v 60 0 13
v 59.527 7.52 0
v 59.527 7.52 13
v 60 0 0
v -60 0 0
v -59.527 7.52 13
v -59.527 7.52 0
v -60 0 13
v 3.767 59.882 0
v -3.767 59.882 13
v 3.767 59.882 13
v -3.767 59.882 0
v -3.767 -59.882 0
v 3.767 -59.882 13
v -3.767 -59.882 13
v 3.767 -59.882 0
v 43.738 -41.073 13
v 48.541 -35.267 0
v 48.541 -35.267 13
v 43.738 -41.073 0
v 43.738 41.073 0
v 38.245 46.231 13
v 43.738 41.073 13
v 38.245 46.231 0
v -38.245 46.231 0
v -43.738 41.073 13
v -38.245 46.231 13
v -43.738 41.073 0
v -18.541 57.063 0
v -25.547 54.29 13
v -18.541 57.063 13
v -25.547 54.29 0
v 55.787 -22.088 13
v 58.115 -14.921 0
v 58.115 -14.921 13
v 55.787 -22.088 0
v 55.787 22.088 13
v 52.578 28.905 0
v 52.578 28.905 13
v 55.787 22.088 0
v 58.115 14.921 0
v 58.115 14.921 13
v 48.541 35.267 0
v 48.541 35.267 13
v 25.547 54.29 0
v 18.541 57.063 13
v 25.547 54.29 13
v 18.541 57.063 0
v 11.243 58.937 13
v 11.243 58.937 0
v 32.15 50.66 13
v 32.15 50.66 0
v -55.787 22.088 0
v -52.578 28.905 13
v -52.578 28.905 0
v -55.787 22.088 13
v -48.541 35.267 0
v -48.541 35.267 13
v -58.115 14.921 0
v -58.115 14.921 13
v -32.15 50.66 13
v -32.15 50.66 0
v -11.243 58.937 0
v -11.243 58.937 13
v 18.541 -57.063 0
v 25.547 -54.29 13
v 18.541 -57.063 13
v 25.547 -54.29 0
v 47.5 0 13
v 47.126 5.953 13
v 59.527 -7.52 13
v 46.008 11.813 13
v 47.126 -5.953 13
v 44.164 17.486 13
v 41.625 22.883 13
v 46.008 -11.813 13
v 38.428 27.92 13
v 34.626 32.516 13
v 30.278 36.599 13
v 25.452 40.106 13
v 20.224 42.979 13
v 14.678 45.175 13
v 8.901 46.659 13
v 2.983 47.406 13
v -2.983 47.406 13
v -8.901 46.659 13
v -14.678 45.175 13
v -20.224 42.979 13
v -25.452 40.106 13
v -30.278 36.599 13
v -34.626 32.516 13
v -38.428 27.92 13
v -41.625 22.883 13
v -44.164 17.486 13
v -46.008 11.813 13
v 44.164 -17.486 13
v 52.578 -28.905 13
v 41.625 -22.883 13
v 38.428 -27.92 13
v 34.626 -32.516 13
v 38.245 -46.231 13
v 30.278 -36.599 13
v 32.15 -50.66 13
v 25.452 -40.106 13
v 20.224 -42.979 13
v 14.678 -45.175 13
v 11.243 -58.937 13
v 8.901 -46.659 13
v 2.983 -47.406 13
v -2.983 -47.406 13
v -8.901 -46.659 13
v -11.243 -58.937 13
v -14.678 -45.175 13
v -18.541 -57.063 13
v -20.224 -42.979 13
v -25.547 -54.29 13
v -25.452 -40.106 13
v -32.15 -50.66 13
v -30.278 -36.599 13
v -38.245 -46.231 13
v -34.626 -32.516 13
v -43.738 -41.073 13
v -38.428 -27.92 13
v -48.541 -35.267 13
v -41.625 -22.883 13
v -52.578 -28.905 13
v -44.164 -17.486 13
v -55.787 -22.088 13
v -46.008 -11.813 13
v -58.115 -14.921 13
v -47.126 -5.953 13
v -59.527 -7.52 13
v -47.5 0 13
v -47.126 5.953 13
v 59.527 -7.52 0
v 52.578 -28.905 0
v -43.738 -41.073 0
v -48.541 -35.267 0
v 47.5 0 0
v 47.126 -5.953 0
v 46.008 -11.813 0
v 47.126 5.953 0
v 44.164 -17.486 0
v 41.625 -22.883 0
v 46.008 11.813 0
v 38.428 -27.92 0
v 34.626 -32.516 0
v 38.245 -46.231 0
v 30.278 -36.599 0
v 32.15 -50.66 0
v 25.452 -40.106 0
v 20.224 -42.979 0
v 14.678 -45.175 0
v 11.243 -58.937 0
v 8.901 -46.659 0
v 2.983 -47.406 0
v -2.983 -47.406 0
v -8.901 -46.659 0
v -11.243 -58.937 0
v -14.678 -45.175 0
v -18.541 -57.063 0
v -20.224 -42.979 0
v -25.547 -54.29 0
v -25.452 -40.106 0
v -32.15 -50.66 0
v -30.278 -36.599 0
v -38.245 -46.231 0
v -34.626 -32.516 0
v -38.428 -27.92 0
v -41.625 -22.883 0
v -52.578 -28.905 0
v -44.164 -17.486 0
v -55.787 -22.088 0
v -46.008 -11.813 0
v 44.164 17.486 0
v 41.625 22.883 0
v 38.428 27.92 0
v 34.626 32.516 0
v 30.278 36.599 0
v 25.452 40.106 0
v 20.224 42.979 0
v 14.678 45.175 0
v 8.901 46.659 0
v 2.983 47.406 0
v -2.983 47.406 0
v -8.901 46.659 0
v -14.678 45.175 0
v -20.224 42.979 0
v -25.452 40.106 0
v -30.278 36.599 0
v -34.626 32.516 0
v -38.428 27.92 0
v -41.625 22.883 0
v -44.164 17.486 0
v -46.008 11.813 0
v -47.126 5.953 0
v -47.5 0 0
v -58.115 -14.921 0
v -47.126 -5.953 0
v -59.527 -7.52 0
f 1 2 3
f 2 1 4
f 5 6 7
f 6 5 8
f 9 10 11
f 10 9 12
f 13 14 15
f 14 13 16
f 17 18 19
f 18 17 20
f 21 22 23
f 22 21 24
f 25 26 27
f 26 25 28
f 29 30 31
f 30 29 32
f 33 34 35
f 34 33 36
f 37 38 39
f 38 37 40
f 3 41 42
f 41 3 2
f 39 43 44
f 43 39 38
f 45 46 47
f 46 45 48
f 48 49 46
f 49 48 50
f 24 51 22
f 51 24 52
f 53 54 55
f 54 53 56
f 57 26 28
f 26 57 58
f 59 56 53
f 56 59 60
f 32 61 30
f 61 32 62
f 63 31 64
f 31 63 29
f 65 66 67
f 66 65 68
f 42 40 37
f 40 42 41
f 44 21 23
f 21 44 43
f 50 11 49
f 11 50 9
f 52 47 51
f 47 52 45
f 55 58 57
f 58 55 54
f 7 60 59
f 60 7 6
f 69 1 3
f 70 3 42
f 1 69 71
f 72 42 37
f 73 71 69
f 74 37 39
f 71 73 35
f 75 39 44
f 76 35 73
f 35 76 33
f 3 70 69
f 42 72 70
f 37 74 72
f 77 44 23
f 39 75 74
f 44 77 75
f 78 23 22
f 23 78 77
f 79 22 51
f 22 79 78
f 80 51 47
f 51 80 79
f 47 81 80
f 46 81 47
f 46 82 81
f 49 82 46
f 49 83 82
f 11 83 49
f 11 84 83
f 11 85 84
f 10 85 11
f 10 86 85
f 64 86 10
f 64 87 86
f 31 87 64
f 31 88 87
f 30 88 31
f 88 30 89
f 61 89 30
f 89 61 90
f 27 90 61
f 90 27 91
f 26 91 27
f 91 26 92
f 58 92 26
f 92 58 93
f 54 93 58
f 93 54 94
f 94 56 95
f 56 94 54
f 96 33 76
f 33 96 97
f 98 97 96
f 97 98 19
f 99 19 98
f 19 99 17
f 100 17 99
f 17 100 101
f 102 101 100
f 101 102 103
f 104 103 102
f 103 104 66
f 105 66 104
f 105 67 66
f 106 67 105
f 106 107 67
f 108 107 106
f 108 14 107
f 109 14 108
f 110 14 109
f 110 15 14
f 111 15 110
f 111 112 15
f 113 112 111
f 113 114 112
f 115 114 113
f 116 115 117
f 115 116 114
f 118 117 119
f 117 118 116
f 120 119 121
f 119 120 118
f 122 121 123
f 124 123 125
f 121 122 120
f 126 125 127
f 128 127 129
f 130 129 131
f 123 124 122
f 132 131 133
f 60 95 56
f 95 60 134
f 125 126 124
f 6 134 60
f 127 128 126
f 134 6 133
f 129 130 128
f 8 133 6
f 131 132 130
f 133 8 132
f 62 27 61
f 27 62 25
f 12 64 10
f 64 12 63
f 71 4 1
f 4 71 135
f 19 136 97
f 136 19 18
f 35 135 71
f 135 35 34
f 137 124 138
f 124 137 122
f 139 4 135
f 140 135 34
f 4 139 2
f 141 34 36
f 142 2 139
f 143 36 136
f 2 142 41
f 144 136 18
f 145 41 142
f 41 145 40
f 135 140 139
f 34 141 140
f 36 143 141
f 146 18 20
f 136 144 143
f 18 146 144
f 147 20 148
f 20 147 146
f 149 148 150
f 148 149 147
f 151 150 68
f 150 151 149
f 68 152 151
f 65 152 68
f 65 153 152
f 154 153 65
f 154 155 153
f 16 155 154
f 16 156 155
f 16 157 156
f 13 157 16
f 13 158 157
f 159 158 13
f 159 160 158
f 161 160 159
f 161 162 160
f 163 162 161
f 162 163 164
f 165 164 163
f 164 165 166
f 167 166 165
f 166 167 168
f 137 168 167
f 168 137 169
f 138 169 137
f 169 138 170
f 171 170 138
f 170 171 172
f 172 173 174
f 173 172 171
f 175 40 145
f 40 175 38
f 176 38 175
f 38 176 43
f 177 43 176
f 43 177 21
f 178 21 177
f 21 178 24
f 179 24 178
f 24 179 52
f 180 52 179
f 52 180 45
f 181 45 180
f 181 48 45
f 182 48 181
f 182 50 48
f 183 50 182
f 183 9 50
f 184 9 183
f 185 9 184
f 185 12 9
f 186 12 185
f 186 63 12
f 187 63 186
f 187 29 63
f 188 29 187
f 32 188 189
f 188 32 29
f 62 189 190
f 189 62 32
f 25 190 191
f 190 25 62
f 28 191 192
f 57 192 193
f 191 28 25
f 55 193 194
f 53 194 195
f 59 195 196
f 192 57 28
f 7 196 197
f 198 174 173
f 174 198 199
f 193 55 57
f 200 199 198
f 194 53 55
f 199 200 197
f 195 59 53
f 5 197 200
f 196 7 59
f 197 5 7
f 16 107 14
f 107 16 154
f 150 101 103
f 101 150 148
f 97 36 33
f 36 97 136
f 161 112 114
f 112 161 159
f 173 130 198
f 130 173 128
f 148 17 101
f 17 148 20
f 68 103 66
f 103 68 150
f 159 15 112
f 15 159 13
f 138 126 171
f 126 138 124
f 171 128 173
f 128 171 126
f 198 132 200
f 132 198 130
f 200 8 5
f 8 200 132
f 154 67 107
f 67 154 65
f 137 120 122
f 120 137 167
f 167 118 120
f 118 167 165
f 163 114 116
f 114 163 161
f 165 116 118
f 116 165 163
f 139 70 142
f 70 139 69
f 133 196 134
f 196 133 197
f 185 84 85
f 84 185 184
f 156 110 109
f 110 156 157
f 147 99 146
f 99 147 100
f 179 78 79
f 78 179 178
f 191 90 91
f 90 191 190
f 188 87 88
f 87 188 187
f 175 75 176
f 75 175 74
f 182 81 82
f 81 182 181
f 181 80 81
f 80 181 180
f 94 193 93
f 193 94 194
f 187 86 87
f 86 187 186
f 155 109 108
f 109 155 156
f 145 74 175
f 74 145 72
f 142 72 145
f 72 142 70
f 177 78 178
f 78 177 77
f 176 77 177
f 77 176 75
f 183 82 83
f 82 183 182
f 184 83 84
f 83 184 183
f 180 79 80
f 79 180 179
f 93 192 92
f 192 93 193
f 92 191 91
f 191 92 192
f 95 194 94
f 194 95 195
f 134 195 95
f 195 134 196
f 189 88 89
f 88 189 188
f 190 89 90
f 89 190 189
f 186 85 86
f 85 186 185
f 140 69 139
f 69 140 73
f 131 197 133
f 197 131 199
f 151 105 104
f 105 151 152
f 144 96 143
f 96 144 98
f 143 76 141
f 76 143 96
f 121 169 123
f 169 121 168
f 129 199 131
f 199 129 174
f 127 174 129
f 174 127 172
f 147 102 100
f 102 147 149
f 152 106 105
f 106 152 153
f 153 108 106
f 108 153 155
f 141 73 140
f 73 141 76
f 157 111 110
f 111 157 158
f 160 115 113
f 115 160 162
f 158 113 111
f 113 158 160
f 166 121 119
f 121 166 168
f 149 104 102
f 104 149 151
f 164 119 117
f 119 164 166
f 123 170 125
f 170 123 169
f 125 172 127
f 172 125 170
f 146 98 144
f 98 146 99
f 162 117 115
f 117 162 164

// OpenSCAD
$fn = 50;


difference() {
	union() {
		translate(v = [0, 0, 0]) {
			rotate(a = [0, 0, 0]) {
				cylinder(h = 13, r = 60.0000000000);
			}
		}
	}
	union() {
		translate(v = [0, 0, 0]) {
			rotate(a = [0, 0, 0]) {
				cylinder(h = 13, r = 47.5000000000);
			}
		}
	}
}
